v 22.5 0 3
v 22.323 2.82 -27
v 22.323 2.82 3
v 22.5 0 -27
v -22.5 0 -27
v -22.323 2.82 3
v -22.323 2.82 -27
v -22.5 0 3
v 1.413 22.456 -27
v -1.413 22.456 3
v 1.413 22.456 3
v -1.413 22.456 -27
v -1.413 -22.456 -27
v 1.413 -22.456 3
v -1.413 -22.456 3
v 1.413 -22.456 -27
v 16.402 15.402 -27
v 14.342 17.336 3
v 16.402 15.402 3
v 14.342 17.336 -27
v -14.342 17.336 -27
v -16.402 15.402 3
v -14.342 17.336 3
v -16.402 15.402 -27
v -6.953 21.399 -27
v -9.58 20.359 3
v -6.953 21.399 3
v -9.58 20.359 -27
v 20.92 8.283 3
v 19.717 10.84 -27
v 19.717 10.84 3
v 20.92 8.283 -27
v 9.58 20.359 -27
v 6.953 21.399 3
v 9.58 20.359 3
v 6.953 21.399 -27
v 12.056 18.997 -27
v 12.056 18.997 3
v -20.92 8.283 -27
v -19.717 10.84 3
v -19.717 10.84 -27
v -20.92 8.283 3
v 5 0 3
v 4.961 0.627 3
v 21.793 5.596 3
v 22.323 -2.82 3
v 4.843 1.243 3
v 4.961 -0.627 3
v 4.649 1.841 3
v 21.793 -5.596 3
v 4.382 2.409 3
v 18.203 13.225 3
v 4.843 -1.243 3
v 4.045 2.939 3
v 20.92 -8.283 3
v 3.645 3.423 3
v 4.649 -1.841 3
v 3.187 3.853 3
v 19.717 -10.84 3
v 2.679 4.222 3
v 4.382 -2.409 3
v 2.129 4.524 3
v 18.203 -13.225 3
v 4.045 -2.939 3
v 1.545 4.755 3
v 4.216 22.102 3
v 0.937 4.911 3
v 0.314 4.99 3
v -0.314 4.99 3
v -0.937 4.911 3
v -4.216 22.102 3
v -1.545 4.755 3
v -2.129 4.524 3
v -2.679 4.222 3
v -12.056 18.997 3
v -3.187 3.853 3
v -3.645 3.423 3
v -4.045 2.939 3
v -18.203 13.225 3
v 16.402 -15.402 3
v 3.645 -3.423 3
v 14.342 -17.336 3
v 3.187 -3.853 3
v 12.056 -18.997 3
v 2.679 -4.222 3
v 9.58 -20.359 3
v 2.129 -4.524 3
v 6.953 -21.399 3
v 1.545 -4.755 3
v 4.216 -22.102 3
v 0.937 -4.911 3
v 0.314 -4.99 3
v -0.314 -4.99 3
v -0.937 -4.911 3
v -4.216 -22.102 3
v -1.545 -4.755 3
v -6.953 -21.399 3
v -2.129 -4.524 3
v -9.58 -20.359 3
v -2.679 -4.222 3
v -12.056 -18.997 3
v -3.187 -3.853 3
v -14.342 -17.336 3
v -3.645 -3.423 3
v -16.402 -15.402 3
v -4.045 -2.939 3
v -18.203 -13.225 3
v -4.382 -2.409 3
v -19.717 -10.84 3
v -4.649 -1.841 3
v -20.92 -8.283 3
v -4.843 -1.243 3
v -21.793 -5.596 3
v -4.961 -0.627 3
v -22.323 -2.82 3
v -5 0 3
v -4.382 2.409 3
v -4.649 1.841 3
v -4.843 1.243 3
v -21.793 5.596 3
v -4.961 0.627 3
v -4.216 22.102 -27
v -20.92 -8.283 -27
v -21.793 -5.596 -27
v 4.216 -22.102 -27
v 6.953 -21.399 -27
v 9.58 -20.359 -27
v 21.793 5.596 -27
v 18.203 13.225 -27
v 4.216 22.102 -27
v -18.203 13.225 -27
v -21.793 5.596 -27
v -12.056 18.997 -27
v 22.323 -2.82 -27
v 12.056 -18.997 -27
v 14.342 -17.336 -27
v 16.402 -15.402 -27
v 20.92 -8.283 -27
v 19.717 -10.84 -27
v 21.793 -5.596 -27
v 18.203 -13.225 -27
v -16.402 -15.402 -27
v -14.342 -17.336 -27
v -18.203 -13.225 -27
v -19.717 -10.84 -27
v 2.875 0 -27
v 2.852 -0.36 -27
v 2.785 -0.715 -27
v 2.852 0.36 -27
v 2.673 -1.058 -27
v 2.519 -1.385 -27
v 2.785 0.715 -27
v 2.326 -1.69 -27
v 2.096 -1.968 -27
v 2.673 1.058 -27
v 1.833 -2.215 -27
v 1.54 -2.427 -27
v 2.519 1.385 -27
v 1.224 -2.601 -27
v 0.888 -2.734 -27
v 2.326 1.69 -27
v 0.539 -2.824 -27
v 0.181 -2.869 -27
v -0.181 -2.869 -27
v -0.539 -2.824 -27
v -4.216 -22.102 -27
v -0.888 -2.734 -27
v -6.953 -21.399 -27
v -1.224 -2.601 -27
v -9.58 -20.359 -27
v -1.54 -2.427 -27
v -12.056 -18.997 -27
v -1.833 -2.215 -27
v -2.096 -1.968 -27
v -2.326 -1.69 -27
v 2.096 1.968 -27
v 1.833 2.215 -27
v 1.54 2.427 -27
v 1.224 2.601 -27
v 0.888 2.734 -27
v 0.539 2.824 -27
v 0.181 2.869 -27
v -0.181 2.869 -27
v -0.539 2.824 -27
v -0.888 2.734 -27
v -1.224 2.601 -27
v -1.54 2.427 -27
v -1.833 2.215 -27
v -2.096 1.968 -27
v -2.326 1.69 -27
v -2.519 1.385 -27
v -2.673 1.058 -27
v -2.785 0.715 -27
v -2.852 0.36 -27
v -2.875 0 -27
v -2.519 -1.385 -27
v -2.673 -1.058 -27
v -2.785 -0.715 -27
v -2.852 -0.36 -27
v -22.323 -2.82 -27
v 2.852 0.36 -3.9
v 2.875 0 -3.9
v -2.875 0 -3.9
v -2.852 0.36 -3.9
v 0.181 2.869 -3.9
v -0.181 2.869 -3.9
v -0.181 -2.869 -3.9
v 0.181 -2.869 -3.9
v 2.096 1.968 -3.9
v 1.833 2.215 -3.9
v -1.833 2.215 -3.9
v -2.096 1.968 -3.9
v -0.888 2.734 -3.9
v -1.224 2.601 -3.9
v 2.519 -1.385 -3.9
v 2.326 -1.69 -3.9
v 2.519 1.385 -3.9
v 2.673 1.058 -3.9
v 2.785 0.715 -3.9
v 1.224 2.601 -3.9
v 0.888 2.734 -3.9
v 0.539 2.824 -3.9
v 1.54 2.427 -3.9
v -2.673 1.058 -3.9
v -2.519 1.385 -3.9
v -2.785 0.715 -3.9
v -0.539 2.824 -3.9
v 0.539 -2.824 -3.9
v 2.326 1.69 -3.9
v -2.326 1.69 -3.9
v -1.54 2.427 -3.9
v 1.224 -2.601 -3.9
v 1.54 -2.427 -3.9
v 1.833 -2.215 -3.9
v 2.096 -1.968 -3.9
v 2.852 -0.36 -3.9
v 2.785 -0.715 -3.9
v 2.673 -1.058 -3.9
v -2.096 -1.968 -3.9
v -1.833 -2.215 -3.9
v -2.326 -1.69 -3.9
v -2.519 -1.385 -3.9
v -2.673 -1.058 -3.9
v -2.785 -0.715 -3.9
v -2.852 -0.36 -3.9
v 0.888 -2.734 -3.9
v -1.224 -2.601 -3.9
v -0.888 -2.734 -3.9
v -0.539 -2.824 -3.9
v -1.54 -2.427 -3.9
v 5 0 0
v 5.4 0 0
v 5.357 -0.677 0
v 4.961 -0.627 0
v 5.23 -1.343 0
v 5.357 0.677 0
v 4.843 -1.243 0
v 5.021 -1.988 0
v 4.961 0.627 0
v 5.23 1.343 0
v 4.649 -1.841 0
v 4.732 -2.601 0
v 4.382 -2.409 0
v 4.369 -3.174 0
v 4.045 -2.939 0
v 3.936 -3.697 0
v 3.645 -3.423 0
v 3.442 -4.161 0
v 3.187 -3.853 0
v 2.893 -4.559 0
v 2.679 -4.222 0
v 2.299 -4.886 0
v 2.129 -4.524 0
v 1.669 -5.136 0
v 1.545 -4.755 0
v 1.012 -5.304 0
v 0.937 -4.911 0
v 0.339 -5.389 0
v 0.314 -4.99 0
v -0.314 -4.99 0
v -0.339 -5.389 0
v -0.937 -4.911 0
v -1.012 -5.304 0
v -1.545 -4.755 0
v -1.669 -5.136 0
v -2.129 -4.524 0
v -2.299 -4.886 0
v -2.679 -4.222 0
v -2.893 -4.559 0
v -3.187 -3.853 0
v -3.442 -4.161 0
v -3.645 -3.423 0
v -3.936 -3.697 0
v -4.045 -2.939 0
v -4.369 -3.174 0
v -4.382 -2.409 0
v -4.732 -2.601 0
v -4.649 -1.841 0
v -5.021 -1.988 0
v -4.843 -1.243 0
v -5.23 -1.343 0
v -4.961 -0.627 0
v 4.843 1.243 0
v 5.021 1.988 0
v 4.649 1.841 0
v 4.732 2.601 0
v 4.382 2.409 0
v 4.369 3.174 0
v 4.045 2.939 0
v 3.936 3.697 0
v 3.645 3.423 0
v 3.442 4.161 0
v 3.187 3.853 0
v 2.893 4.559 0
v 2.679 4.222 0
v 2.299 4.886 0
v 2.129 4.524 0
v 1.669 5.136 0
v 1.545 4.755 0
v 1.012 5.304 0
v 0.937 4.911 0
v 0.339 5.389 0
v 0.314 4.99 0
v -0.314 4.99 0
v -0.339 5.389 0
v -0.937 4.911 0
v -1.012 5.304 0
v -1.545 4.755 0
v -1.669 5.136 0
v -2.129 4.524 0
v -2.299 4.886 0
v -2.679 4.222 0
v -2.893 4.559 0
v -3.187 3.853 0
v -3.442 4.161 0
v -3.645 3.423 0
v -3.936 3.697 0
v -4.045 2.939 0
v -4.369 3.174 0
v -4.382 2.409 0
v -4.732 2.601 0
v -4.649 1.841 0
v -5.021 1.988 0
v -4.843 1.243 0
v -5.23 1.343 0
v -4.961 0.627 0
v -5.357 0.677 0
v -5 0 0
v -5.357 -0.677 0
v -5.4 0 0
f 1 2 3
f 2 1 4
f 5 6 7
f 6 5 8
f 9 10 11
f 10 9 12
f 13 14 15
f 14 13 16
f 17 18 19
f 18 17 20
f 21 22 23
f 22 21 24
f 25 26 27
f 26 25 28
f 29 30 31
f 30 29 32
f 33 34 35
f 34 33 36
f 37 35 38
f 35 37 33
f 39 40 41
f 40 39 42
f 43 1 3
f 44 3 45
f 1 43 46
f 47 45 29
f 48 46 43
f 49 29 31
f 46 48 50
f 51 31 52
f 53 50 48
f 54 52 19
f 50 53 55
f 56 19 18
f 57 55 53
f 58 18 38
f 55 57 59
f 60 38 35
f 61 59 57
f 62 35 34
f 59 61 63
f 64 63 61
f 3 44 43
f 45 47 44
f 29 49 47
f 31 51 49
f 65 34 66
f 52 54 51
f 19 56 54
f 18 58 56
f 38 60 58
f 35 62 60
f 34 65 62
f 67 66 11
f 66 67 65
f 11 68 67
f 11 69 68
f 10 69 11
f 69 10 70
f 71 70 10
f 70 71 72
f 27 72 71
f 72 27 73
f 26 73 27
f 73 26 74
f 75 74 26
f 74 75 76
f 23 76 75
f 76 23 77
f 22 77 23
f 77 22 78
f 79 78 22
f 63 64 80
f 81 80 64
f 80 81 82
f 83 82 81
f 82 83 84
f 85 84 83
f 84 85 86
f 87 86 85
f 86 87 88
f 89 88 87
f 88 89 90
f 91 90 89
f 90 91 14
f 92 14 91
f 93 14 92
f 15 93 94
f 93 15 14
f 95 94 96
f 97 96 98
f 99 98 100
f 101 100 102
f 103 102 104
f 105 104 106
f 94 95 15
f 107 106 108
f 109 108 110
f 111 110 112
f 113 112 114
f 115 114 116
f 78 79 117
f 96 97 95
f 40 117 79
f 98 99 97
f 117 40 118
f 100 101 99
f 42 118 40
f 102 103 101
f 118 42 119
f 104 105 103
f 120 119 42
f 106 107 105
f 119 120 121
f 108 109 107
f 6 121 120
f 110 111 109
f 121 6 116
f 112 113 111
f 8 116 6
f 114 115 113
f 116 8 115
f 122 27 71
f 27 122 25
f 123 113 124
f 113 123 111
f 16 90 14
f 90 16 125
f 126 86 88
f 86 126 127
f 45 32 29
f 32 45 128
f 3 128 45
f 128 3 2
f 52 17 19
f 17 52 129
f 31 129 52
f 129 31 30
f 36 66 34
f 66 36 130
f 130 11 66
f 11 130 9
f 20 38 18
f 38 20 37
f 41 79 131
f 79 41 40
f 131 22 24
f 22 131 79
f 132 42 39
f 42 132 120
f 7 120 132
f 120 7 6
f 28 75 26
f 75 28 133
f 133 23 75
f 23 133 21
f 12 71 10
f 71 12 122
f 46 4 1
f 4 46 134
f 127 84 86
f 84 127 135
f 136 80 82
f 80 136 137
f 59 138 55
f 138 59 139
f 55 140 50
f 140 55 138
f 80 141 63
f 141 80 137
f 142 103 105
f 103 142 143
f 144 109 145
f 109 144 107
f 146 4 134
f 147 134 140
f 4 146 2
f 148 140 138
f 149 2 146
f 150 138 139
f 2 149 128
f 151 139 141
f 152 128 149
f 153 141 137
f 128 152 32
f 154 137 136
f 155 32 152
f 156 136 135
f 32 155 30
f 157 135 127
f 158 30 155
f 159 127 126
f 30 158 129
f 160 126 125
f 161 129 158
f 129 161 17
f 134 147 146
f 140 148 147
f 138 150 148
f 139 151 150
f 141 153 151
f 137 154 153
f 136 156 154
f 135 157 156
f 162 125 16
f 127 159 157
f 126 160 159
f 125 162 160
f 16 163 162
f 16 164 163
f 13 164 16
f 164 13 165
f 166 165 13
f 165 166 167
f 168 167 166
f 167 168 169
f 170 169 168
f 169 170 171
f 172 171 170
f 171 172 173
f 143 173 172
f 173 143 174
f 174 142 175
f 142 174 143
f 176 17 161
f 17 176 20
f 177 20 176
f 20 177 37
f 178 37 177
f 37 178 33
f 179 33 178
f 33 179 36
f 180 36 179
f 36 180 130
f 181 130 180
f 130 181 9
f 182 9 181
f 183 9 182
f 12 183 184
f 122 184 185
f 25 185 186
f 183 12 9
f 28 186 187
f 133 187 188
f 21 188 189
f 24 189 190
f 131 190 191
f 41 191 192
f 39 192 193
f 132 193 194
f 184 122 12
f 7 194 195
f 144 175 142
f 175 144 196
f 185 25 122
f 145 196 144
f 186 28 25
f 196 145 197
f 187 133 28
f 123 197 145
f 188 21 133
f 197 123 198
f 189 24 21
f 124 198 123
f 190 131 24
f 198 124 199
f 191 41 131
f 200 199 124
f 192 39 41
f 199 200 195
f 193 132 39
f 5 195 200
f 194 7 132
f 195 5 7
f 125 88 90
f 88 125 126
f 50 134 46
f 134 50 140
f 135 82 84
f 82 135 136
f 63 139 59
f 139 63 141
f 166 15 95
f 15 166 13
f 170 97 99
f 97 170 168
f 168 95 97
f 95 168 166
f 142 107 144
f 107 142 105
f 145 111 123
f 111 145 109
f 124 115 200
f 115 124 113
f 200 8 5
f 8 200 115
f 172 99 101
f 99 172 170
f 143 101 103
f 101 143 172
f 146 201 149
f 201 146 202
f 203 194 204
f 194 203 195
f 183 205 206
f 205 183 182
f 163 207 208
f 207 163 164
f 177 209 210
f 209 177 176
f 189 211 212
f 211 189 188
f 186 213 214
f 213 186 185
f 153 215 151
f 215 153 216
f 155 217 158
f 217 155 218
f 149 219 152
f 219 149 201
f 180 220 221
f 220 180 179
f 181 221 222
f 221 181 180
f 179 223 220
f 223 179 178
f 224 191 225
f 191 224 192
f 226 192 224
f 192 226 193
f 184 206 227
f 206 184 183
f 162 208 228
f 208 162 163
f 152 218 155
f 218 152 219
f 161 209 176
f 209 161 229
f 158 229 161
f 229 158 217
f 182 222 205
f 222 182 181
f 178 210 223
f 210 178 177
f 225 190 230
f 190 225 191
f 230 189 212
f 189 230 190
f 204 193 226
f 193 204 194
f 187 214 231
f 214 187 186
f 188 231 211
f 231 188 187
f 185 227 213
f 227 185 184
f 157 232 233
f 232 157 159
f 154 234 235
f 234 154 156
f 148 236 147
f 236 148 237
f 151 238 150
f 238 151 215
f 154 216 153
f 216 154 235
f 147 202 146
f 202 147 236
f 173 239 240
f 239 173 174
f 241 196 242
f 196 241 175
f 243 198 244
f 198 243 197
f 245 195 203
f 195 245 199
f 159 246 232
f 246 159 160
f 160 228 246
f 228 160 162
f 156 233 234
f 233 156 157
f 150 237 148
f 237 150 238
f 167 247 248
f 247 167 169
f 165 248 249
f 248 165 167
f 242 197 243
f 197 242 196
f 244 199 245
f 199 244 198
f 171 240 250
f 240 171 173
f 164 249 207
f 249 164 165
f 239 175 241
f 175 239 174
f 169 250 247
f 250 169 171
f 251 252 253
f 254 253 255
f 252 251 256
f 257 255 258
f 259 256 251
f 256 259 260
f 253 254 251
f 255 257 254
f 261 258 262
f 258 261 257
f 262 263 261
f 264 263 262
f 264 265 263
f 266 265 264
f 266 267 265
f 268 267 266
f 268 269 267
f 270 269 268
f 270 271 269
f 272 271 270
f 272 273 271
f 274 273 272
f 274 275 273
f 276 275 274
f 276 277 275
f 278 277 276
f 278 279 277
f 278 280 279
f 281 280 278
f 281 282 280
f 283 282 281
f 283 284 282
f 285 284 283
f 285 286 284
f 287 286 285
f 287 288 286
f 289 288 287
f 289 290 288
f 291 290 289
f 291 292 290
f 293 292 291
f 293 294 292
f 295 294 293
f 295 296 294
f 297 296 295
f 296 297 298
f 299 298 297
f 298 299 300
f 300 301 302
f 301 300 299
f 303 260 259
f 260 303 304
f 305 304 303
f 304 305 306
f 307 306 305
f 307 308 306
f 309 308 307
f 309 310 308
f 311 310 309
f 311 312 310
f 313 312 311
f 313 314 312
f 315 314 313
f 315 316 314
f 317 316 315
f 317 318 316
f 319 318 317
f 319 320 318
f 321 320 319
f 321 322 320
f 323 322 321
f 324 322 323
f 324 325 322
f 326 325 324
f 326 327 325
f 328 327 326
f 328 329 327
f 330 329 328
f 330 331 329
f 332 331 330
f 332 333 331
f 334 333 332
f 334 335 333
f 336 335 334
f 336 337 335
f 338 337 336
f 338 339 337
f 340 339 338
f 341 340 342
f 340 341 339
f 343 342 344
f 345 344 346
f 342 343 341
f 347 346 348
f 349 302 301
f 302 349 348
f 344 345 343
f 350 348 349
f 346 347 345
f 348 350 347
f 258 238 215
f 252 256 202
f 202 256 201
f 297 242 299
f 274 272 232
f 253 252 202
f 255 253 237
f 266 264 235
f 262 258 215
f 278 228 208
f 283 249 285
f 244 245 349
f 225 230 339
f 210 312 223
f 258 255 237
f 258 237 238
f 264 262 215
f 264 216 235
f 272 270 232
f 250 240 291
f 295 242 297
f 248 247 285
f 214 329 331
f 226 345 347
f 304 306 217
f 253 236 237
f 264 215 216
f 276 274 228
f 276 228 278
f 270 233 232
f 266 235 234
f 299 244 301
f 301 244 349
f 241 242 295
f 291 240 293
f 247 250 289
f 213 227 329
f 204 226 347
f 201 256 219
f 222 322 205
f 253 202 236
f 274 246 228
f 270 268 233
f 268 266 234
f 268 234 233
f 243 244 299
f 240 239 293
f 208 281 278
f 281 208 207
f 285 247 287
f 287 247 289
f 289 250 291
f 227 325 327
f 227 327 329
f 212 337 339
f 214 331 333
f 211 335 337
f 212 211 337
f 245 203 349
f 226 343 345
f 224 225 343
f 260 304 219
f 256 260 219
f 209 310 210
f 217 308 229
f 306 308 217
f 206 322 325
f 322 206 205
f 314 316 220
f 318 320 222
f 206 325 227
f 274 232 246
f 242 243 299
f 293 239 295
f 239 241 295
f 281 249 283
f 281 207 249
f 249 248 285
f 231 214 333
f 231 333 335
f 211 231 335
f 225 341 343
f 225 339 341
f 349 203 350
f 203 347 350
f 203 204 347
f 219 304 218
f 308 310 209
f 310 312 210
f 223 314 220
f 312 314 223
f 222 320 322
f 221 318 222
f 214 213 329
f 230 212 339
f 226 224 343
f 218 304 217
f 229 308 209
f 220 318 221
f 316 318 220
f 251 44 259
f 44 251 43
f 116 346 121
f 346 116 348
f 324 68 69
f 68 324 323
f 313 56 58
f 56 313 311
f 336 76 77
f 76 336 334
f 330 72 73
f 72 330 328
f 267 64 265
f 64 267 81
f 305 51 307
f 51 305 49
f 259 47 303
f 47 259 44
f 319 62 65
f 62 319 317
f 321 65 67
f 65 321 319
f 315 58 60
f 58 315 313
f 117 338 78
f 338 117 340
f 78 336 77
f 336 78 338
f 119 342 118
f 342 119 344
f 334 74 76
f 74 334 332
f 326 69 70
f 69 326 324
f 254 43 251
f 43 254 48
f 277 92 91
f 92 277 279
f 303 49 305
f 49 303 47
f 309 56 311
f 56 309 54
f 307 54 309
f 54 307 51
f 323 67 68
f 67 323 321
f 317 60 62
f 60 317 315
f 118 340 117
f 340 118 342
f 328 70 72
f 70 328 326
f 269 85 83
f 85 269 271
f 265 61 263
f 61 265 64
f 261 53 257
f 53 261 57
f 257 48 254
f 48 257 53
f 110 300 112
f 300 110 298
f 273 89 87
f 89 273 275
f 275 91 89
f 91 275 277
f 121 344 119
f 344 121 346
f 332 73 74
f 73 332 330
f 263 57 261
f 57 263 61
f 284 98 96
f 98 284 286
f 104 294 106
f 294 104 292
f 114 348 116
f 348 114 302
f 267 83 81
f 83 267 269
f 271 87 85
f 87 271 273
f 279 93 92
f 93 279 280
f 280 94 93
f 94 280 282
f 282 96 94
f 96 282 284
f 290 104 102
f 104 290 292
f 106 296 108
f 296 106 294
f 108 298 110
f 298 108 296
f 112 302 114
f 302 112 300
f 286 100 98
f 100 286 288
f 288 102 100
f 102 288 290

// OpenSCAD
$fn = 50;


difference() {
	union() {
		translate(v = [0, 0, -27.0000000000]) {
			cylinder(h = 30, r = 22.5000000000);
		}
		#translate(v = [0, 0, -30.0000000000]) {
			cylinder(h = 30, r = 2.8750000000);
		}
	}
	union() {
		translate(v = [0, 0, 0]) {
			rotate(a = [0, 0, 0]) {
				difference() {
					union() {
						translate(v = [0, 0, -30.0000000000]) {
							cylinder(h = 30, r = 2.6000000000);
						}
						translate(v = [0, 0, -3.9000000000]) {
							cylinder(h = 3.9000000000, r1 = 2.8750000000, r2 = 5.4000000000);
						}
						translate(v = [0, 0, -30.0000000000]) {
							cylinder(h = 30, r = 2.8750000000);
						}
						translate(v = [0, 0, -30.0000000000]) {
							cylinder(h = 30, r = 2.6000000000);
						}
					}
					union();
				}
			}
		}
		#cylinder(h = 3, r = 5.0000000000);
	}
}
